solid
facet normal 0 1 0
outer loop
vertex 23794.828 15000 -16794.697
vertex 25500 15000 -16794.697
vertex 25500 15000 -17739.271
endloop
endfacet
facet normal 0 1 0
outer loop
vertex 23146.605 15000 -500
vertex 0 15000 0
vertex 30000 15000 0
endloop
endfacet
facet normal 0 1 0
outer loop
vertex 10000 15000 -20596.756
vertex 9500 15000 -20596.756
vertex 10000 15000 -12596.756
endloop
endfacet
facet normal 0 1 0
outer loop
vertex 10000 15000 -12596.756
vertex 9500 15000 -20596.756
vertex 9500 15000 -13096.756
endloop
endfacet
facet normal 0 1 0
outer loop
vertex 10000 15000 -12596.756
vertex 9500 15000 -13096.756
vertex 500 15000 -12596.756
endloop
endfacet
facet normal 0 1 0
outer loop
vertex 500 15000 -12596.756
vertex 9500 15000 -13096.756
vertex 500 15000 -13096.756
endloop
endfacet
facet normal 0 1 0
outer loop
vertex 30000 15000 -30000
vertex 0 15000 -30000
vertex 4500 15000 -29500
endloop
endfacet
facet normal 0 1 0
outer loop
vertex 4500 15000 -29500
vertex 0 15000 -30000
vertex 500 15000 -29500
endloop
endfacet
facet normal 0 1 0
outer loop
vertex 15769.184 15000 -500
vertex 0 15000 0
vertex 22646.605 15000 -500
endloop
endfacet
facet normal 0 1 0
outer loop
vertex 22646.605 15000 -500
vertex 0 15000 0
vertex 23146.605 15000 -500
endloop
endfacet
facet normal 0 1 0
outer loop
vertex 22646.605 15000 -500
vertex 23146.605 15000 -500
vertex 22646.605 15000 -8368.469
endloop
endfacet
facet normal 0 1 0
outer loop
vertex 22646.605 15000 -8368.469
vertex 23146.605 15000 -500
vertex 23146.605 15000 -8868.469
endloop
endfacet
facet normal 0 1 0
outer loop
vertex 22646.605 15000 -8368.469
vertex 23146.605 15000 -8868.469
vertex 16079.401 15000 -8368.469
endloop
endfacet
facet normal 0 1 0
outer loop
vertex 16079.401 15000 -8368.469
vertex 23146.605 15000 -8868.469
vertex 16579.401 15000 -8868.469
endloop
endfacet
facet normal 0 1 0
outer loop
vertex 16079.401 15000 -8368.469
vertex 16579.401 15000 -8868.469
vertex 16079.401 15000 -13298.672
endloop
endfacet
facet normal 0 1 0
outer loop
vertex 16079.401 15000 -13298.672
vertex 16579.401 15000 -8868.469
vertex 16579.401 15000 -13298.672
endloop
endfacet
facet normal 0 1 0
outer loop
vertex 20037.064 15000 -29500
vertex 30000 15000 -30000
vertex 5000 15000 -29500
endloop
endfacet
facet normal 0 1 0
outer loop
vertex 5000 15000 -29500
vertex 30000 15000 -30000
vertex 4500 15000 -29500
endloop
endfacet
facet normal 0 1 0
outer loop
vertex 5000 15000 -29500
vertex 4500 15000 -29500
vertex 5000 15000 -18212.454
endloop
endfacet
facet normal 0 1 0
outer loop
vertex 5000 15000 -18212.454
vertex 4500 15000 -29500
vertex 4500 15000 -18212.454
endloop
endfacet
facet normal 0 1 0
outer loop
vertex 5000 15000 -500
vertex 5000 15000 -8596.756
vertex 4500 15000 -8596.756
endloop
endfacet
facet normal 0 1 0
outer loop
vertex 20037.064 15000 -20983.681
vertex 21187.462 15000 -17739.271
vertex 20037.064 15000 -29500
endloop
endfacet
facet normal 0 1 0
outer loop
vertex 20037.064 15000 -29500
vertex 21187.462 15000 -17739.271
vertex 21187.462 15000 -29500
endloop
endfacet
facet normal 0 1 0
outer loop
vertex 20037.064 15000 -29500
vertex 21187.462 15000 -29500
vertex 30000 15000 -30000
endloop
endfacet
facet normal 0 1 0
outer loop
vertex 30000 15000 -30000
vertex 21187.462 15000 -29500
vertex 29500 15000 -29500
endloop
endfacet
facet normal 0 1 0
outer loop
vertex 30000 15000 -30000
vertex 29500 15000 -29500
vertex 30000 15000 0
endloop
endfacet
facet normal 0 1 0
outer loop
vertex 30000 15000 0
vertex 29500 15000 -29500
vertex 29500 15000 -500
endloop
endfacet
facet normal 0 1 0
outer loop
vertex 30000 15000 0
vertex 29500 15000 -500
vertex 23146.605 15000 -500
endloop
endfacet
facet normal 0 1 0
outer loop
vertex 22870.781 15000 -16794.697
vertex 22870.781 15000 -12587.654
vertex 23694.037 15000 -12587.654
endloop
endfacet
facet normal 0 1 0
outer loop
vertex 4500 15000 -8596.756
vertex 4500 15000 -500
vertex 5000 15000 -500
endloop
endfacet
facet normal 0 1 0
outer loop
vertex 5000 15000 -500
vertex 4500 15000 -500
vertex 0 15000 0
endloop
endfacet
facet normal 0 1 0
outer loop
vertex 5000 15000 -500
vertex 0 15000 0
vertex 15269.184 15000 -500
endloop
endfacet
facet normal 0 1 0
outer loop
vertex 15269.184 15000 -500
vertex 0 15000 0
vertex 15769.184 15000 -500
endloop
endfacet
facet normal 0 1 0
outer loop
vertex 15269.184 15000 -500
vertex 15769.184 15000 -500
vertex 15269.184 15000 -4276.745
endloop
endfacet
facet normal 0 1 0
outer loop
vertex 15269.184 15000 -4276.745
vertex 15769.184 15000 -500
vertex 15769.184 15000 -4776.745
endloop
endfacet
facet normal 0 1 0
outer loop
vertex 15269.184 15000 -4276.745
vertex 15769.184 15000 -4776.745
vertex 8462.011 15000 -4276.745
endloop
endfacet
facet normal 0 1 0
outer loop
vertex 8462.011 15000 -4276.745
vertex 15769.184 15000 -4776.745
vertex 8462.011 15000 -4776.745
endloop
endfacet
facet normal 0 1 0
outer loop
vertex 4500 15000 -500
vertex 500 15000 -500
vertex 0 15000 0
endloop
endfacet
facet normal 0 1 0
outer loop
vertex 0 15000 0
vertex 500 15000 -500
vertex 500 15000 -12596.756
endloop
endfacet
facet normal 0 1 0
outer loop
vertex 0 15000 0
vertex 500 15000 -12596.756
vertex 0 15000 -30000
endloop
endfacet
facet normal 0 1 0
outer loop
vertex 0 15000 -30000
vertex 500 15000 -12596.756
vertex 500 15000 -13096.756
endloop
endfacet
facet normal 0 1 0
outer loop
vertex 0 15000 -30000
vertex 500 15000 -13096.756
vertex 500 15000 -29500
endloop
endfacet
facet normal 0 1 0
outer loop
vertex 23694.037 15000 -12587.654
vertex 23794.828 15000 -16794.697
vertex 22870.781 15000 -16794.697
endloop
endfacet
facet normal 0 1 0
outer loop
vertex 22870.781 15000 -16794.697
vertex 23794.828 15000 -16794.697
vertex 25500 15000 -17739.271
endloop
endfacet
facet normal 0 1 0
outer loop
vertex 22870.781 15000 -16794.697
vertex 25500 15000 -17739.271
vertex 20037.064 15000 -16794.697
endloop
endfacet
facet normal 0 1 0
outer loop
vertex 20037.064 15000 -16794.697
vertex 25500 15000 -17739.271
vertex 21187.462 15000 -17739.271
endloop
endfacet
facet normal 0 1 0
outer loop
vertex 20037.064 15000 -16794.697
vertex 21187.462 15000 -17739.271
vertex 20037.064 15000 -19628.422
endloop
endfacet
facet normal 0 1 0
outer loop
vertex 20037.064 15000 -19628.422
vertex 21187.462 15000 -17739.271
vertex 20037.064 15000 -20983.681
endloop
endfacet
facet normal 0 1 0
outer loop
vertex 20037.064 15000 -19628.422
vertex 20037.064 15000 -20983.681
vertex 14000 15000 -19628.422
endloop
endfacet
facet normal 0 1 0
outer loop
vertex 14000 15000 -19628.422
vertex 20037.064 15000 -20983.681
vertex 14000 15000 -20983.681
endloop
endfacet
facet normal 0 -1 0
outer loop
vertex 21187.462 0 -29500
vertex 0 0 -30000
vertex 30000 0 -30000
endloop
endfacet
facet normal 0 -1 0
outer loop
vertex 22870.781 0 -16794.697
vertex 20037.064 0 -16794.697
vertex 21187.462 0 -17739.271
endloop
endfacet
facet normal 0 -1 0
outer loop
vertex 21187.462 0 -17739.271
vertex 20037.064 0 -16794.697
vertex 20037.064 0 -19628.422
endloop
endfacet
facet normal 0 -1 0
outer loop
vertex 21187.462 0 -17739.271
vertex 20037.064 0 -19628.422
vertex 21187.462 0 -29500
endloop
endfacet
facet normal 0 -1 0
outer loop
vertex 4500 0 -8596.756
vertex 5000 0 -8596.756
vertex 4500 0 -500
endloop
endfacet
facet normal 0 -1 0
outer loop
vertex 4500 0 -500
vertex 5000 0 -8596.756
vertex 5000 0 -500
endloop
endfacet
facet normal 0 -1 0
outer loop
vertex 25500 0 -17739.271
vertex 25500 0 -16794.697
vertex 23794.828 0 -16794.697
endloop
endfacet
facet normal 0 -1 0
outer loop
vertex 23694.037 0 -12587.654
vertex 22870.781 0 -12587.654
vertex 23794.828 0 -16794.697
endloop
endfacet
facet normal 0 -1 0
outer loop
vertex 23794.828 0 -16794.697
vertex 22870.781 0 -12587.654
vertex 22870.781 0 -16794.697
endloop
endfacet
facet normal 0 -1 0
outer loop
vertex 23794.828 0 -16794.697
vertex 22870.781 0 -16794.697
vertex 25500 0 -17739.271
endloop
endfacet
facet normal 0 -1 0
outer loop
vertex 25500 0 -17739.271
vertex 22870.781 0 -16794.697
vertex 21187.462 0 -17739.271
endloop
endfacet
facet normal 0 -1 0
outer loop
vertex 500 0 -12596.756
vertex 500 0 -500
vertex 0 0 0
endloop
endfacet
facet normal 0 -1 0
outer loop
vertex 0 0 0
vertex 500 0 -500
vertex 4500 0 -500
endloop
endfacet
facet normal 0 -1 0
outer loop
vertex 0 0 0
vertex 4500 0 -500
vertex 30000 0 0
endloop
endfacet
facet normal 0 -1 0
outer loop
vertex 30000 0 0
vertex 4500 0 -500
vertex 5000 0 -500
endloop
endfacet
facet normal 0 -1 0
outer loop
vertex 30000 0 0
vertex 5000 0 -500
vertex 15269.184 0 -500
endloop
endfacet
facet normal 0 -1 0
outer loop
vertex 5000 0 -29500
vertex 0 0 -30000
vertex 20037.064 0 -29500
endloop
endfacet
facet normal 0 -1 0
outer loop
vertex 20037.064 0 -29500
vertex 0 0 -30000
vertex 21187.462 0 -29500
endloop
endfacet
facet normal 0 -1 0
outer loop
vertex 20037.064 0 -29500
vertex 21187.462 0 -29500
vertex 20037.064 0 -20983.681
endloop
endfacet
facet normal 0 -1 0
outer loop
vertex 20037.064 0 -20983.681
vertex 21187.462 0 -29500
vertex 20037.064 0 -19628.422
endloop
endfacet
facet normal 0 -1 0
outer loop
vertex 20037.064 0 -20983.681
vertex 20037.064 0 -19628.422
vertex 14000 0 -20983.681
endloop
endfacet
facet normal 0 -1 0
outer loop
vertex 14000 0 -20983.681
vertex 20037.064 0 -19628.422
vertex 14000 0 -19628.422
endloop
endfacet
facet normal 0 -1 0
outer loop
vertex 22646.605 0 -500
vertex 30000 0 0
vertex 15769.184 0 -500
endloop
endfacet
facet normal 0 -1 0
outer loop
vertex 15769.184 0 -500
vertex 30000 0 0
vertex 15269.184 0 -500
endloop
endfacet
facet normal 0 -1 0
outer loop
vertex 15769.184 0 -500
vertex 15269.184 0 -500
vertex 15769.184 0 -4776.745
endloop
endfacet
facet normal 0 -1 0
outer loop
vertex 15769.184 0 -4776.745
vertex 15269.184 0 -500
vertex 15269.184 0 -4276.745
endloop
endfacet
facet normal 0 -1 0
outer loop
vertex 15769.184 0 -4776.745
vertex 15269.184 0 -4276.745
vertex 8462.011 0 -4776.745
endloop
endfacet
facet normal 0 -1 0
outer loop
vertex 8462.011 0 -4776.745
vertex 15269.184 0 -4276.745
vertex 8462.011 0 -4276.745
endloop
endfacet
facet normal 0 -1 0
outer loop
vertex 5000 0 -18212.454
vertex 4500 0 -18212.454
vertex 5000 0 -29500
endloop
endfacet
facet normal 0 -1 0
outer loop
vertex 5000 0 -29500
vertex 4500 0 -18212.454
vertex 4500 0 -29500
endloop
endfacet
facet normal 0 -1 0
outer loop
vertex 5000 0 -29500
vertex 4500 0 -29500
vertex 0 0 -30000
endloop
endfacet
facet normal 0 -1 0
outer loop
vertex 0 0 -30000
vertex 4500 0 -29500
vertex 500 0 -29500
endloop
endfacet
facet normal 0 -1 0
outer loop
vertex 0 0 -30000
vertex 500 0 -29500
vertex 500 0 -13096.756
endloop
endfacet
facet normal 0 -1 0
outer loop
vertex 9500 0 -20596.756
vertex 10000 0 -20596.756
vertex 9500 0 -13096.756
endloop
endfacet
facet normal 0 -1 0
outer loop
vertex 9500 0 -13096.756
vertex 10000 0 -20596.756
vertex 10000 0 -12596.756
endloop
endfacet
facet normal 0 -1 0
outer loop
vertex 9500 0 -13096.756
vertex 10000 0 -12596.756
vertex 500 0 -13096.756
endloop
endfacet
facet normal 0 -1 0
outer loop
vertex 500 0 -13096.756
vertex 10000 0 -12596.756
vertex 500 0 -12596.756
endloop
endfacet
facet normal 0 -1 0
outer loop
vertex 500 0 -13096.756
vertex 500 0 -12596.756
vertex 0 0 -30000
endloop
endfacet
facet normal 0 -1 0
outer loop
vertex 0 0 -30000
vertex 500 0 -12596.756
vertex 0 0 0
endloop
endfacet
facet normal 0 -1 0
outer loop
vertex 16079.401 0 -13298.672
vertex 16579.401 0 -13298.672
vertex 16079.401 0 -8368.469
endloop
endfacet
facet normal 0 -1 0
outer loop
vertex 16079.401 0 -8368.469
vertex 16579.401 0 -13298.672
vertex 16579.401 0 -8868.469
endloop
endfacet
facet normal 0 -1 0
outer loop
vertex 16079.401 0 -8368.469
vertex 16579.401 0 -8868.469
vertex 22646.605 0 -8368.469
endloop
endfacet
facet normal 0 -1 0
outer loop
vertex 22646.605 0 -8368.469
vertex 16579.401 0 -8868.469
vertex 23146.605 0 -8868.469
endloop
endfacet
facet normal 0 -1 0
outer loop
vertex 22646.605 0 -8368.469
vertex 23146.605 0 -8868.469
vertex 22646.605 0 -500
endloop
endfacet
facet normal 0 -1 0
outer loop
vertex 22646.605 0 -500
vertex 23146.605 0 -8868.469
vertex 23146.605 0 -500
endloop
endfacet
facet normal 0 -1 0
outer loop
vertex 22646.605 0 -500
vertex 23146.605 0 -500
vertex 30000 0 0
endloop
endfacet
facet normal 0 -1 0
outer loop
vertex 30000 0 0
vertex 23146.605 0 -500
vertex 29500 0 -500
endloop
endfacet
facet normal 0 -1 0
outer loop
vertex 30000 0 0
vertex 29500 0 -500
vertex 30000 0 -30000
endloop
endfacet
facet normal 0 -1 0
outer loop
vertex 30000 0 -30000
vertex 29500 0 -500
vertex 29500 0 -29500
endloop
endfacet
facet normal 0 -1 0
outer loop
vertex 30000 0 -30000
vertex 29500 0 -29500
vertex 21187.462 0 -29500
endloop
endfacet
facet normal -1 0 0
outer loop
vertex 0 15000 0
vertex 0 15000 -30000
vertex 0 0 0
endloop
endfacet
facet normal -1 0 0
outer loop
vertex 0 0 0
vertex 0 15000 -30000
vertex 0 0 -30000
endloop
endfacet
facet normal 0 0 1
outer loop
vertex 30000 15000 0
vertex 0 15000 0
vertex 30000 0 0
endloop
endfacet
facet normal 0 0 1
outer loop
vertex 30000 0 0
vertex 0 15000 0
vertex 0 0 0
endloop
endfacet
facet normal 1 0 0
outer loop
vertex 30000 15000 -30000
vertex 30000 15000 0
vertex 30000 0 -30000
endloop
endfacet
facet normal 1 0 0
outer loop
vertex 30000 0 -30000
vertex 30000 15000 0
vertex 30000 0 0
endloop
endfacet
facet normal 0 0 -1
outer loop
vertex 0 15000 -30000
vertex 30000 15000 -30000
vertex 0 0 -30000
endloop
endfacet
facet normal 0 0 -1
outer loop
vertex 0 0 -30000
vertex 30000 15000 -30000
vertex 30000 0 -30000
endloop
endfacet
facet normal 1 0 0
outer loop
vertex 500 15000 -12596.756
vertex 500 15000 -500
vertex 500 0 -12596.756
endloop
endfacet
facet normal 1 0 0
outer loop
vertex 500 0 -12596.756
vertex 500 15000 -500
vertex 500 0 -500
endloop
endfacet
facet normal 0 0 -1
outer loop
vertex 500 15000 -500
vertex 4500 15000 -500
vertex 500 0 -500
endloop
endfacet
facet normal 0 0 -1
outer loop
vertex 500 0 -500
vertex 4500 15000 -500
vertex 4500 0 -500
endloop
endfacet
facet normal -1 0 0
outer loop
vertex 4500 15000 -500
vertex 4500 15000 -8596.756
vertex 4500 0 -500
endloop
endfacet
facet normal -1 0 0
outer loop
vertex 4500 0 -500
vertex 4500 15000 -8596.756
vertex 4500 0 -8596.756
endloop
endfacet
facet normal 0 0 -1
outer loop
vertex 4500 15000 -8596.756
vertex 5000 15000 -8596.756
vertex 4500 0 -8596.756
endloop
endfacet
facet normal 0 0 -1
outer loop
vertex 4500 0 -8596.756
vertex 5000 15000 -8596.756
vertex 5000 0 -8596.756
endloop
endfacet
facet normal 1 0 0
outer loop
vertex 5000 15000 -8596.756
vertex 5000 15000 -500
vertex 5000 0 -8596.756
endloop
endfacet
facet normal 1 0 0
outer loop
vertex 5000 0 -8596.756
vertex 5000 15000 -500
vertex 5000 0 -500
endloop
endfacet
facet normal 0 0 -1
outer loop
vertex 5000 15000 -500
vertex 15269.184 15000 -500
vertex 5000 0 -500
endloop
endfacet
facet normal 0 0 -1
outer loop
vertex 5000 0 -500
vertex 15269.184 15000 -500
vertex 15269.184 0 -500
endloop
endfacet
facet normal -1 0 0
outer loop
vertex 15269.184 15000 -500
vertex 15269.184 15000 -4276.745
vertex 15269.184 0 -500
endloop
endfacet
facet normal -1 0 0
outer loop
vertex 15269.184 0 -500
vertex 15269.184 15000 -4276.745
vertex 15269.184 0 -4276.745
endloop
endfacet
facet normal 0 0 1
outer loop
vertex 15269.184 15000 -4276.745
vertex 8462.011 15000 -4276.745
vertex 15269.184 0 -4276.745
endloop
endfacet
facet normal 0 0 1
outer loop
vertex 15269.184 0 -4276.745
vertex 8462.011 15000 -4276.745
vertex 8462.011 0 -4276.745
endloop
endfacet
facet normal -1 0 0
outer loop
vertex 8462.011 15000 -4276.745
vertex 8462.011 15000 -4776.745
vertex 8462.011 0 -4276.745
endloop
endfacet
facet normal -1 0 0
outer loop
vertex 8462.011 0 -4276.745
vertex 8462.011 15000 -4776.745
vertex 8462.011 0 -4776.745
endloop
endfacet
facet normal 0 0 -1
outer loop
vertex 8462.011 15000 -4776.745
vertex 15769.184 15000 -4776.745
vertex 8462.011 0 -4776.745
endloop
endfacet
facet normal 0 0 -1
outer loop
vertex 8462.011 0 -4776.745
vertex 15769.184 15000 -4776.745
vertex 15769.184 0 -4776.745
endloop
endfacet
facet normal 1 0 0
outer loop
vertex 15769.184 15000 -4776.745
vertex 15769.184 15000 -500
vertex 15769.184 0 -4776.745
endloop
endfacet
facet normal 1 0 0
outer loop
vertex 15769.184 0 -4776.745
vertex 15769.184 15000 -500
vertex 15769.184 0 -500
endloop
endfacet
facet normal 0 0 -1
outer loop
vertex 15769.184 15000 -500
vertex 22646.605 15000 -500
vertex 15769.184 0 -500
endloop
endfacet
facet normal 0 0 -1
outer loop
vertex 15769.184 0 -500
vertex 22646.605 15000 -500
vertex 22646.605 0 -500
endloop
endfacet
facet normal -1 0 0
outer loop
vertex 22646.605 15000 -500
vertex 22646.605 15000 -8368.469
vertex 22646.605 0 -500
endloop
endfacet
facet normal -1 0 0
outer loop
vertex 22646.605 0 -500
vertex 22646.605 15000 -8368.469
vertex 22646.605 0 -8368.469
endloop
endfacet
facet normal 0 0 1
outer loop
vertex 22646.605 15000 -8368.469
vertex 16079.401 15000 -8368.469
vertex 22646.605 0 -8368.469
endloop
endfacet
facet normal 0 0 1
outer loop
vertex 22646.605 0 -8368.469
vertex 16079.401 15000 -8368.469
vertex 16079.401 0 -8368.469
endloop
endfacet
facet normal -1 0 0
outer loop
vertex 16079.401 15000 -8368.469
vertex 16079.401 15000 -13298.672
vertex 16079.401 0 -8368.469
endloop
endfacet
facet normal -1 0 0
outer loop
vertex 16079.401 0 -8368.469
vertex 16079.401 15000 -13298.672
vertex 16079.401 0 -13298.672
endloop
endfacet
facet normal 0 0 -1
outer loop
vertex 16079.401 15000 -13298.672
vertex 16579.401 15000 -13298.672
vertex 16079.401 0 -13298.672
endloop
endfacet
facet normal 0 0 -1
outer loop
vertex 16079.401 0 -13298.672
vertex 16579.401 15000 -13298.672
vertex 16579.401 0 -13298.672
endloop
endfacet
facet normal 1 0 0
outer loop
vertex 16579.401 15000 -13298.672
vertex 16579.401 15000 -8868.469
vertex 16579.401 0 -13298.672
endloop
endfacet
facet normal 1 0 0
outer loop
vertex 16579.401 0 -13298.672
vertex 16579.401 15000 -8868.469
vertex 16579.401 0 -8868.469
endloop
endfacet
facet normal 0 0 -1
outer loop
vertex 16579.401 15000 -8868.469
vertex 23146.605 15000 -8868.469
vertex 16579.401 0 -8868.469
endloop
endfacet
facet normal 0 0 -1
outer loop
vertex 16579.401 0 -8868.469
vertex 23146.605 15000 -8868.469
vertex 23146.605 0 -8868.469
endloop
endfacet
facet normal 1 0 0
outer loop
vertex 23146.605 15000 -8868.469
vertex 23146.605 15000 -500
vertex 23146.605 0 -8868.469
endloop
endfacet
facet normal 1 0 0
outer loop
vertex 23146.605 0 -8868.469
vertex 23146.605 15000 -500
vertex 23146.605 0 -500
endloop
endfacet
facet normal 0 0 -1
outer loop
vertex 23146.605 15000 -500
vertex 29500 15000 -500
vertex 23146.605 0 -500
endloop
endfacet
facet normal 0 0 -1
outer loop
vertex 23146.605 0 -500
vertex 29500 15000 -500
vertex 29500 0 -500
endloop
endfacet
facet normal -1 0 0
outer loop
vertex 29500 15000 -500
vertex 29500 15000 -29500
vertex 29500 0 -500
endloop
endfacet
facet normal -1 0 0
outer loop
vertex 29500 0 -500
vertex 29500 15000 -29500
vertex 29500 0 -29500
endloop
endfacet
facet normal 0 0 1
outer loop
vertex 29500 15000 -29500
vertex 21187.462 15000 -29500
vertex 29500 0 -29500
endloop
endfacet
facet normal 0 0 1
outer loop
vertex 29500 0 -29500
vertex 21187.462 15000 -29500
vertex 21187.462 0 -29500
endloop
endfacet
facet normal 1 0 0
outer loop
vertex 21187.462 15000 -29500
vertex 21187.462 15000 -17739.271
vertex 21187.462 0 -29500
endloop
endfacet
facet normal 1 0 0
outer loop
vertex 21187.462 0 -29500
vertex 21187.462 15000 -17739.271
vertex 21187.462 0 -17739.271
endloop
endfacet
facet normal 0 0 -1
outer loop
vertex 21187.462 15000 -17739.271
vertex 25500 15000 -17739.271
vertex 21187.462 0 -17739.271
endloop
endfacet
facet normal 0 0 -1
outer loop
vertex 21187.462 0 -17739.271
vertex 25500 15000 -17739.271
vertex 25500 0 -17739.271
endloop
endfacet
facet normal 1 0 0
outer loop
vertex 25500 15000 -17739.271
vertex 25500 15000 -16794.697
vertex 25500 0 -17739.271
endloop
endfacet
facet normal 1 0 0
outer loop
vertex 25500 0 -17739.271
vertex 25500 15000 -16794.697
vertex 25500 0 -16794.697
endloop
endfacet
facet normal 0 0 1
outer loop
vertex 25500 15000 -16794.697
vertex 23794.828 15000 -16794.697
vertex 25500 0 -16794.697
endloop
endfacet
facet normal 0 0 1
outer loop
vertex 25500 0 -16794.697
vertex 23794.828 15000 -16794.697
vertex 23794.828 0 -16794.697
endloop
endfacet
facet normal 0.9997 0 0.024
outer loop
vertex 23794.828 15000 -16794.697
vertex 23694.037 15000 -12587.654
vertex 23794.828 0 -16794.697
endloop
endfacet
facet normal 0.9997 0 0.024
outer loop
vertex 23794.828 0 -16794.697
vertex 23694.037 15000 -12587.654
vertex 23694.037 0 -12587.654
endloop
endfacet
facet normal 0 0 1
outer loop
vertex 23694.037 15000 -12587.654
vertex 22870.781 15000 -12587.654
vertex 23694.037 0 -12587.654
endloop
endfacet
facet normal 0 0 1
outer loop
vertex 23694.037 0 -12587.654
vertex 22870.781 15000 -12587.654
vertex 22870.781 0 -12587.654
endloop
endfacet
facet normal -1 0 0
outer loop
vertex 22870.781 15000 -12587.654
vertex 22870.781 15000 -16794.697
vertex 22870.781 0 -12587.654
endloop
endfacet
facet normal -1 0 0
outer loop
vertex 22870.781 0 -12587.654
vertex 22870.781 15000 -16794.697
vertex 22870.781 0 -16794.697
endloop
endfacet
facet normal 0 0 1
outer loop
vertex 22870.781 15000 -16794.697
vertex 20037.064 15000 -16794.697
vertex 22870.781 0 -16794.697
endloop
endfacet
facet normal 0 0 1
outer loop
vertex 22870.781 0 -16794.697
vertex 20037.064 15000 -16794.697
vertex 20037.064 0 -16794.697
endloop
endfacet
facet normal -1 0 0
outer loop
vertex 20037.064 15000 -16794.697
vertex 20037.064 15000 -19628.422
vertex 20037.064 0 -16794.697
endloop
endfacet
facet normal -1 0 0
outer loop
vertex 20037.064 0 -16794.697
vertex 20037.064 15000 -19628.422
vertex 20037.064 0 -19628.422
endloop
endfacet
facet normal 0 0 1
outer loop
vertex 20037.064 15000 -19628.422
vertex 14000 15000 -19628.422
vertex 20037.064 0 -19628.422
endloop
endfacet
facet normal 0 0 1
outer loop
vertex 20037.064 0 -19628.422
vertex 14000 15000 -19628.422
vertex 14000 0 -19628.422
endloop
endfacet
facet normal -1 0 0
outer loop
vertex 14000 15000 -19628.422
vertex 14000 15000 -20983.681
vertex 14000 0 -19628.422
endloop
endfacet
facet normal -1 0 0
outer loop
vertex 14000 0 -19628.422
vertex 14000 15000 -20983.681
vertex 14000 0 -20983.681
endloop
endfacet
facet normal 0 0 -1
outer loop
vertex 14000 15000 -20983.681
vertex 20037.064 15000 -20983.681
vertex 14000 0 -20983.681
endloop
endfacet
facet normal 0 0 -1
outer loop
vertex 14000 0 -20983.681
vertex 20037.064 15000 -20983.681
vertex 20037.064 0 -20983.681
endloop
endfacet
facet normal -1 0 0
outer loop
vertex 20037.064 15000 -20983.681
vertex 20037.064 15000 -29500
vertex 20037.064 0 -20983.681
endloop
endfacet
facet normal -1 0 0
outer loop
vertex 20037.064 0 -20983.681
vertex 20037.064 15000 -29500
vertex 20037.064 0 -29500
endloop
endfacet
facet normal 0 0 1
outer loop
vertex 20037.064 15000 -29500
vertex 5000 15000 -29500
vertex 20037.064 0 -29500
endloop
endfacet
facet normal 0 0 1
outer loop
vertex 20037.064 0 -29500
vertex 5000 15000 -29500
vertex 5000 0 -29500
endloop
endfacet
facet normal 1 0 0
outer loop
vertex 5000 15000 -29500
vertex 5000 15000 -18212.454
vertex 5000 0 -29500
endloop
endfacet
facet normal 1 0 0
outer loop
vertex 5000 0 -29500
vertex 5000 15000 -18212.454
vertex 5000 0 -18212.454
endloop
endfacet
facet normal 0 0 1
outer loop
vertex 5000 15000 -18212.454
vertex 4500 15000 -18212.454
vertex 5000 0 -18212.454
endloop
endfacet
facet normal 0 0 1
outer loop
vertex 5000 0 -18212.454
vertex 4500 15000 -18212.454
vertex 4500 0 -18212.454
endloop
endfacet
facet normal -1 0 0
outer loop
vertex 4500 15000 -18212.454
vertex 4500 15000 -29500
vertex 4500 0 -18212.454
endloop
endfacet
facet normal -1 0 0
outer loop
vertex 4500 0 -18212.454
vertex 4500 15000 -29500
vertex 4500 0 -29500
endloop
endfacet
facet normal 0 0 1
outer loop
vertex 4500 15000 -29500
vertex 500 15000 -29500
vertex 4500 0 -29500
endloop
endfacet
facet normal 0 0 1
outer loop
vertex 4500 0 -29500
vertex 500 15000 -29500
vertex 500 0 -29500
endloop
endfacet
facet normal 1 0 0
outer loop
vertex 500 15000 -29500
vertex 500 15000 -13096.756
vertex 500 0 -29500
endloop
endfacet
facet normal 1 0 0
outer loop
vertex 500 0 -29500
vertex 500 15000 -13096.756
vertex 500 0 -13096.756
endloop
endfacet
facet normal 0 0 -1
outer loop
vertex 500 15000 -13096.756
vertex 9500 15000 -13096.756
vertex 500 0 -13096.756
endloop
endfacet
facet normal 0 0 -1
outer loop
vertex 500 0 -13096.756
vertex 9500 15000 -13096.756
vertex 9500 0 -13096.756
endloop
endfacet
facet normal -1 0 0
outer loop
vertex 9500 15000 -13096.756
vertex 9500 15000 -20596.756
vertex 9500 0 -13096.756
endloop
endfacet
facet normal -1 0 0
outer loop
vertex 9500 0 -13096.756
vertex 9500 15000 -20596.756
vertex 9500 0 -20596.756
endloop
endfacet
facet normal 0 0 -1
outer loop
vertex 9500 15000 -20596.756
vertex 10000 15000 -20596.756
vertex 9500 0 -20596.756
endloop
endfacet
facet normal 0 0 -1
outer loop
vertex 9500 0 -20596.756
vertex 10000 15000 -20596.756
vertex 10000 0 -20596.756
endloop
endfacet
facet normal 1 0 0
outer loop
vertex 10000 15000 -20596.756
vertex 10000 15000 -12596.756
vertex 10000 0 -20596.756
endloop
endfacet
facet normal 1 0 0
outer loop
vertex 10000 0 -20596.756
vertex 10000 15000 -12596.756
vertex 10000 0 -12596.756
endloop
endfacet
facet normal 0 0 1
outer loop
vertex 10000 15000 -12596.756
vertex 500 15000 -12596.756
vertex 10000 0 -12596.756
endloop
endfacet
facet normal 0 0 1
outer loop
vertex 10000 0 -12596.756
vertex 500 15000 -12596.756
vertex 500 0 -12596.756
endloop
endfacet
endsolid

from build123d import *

# Parameters (mm, degrees)
SKETCH1_W           = 30000
SKETCH1_H           = 30000
BOSS_EXTRUDE1_DEPTH = 15000


with BuildPart() as part:
    # Sketch1 → Boss-Extrude1 (new body)
    with BuildSketch(Plane(origin=(0, 0, 0), x_dir=(1, 0, 0), z_dir=(0, 1, 0))):
        with Locations((15000, 15000)):
            Rectangle(SKETCH1_W, SKETCH1_H)
        Polygon((500, 13096.755147093), (9500, 13096.755147093), (9500, 20596.755147093), (10000, 20596.755147093), (10000, 12596.755147093), (500, 12596.755147093), (500, 500), (4500, 500), (4500, 8596.755147093), (5000, 8596.755147093), (5000, 500), (15269.183881246, 500), (15269.183881246, 4276.7457449), (8462.011757956, 4276.7457449), (8462.011757956, 4776.7457449), (15769.183881246, 4776.7457449), (15769.183881246, 500), (22646.603843365, 500), (22646.603843365, 8368.468538599), (16079.401831089, 8368.468538599), (16079.401831089, 13298.67172662), (16579.401831089, 13298.67172662), (16579.401831089, 8868.468538599), (23146.603843365, 8868.468538599), (23146.603843365, 500), (29500, 500), (29500, 29500), (21187.462413517, 29500), (21187.462413517, 17739.27195209), (25500, 17739.27195209), (25500, 16794.697330365), (23794.82814267, 16794.697330365), (23694.036844744, 12587.654768297), (22870.780995046, 12587.654768297), (22870.780995046, 16794.697330365), (20037.063886677, 16794.697330365), (20037.063886677, 19628.42119554), (14000, 19628.42119554), (14000, 20983.680435406), (20037.063886677, 20983.680435406), (20037.063886677, 29500), (5000, 29500), (5000, 18212.454600794), (4500, 18212.454600794), (4500, 29500), (500, 29500), align=None, mode=Mode.SUBTRACT)
    extrude(amount=BOSS_EXTRUDE1_DEPTH)


solid = part.part
